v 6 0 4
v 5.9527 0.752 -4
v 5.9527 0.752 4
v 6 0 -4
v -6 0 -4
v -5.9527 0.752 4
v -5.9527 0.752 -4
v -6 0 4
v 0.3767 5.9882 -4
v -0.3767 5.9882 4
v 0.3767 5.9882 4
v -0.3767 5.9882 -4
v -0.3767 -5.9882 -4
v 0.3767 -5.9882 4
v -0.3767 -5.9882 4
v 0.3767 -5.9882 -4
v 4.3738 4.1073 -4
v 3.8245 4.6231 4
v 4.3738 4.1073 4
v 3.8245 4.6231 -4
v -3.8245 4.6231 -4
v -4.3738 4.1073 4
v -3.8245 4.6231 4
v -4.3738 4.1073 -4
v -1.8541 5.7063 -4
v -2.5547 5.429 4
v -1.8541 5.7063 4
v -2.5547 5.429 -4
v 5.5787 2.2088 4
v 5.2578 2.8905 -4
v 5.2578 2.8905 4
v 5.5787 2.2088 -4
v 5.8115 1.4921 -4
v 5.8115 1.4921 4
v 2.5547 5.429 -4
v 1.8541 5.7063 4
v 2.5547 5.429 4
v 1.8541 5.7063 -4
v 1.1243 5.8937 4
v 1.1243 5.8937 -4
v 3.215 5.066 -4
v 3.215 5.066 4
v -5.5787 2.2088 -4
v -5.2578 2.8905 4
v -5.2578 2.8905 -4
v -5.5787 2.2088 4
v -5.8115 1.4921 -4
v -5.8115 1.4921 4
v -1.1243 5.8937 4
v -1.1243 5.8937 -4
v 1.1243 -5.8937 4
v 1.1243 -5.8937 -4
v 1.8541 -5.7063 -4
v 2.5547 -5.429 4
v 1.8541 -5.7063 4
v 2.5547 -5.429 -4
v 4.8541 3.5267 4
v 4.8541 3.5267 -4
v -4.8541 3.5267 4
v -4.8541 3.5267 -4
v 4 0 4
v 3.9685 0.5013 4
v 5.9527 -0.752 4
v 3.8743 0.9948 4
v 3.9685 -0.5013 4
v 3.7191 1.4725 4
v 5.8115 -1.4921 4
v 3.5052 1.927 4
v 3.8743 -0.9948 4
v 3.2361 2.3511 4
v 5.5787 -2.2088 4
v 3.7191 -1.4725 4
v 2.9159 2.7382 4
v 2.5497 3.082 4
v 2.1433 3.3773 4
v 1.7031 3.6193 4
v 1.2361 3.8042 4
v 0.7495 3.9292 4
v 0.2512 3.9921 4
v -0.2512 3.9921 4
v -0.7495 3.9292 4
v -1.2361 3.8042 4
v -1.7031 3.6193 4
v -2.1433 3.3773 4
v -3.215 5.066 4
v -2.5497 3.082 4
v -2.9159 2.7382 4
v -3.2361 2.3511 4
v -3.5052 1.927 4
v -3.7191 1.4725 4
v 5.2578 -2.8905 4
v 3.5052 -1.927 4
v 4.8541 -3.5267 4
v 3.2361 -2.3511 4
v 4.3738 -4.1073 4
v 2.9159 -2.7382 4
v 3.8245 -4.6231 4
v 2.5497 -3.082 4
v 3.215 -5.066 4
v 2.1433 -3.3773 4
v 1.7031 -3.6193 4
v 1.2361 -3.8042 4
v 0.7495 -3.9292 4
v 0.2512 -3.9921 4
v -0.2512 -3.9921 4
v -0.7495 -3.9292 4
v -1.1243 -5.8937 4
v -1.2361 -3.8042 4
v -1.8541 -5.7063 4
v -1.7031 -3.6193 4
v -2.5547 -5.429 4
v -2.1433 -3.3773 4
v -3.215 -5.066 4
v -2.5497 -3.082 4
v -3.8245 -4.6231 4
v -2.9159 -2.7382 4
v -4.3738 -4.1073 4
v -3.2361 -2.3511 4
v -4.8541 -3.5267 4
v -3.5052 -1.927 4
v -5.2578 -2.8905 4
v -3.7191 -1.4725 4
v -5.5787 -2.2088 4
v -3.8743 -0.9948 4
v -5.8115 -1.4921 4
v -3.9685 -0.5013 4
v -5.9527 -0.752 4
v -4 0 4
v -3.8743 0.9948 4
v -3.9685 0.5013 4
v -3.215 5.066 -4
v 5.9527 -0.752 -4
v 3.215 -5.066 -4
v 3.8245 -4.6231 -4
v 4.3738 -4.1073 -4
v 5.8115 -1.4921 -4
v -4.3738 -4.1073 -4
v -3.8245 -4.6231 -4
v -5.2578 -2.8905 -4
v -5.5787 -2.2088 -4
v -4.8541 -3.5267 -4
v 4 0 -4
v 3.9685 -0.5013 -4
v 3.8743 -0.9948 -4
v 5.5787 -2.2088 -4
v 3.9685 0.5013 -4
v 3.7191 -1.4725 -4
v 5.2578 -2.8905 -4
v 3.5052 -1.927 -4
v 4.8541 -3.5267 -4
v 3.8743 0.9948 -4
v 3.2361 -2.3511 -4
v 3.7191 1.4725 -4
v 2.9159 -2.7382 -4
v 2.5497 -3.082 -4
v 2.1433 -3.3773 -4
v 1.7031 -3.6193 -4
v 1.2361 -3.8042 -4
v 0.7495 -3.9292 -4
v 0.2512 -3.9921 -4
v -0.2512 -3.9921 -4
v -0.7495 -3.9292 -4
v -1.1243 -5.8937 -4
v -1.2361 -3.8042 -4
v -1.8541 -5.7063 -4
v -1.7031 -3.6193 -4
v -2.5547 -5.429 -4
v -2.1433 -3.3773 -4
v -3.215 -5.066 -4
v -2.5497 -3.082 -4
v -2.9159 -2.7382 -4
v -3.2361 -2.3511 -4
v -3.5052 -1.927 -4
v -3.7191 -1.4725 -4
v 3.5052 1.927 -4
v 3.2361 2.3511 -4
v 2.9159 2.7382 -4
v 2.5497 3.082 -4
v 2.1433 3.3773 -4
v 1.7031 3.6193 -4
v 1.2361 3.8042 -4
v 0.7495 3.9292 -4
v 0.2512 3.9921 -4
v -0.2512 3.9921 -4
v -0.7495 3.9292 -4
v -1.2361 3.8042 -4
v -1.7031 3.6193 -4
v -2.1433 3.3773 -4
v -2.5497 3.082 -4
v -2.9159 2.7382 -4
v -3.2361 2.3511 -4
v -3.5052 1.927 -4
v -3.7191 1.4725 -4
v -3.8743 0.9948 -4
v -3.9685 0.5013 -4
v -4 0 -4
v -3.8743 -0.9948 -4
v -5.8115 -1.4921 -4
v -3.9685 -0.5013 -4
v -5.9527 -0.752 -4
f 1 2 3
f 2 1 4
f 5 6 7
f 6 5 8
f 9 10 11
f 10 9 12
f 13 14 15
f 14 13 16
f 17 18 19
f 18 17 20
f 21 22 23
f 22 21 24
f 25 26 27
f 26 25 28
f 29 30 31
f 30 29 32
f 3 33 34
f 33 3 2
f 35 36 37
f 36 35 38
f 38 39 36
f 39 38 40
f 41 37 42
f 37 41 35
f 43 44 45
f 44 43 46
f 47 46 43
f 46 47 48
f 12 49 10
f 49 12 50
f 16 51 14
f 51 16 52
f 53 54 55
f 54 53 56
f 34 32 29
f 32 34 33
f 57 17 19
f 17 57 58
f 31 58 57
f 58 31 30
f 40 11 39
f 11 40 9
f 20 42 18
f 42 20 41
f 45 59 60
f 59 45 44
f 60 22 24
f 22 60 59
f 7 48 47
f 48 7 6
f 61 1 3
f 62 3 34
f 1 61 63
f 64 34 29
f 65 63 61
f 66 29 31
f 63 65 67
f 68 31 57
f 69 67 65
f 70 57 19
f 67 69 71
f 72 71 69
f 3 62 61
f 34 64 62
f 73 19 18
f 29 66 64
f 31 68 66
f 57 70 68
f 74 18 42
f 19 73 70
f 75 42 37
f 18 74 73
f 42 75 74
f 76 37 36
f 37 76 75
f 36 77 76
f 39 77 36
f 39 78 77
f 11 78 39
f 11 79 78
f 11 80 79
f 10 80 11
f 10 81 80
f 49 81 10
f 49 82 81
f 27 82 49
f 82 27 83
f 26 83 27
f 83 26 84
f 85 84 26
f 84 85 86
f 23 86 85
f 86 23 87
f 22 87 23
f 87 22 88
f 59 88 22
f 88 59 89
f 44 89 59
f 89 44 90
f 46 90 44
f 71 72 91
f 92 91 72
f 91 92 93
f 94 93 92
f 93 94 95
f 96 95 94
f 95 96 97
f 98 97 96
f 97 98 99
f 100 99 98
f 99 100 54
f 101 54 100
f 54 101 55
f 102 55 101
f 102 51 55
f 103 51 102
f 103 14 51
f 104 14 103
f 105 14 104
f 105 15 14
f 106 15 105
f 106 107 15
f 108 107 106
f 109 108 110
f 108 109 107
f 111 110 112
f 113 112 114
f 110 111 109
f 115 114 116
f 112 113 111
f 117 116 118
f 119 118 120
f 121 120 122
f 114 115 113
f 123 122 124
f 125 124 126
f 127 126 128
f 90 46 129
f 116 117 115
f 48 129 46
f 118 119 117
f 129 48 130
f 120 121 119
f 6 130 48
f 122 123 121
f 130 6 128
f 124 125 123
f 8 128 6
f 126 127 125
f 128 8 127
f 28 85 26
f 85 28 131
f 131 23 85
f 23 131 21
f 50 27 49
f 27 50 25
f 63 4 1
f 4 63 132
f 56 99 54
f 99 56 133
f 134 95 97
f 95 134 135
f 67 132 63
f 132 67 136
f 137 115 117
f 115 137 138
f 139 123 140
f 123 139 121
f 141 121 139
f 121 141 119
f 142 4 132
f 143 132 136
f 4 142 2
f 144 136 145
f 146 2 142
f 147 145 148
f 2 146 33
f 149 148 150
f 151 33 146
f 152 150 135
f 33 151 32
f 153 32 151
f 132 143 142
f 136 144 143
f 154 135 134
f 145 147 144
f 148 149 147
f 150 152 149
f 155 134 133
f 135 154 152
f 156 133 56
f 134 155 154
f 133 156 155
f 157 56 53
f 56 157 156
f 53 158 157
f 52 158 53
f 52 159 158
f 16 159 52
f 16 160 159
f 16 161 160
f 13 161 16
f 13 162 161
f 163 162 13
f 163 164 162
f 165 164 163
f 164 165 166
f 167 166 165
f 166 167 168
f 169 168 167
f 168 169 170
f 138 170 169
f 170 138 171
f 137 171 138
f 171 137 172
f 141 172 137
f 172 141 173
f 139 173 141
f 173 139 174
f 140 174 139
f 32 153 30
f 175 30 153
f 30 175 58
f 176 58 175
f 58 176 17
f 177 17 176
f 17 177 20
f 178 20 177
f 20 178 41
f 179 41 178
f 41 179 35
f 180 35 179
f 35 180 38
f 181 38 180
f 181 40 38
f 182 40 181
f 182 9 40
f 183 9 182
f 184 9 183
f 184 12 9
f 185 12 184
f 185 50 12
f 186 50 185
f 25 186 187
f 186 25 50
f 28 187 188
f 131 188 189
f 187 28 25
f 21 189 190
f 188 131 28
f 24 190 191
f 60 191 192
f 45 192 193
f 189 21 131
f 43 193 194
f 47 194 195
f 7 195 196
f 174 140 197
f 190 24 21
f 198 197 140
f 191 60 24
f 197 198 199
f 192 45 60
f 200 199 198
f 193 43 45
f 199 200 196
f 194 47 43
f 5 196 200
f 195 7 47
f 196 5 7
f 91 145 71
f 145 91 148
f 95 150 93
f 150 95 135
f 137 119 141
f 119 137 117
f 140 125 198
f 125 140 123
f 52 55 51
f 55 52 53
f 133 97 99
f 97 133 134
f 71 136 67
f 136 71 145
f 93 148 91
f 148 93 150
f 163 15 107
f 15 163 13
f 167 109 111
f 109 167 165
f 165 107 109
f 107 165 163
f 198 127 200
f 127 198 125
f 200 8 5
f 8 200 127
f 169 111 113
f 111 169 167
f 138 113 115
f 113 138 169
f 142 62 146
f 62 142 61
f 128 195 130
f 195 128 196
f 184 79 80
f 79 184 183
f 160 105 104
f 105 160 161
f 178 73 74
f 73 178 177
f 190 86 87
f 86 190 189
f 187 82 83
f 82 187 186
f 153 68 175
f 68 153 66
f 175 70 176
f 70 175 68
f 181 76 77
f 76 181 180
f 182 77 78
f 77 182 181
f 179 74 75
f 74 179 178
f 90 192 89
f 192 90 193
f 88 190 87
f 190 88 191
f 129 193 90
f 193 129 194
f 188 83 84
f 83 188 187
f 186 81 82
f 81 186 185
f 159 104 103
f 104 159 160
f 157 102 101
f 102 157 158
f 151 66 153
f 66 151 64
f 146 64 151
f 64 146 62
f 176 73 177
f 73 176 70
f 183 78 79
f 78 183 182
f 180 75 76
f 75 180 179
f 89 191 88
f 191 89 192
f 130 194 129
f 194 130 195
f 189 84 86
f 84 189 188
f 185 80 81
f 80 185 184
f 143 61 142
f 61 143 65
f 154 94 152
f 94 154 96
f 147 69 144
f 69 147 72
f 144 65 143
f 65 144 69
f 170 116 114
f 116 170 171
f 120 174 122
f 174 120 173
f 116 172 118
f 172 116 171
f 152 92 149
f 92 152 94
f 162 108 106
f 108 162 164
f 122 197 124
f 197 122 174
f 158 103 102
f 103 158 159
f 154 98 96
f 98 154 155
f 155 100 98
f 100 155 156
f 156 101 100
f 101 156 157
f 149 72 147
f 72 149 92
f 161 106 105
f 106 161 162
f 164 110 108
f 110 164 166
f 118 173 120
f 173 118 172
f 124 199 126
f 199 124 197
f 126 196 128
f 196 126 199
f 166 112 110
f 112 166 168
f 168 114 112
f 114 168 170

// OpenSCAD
$fn = 50;


difference() {
	union() {
		translate(v = [0, 0, -4.0000000000]) {
			cylinder(h = 8, r = 6.0000000000);
		}
	}
	union() {
		translate(v = [0, 0, -100.0000000000]) {
			cylinder(h = 200, r = 4);
		}
	}
}
